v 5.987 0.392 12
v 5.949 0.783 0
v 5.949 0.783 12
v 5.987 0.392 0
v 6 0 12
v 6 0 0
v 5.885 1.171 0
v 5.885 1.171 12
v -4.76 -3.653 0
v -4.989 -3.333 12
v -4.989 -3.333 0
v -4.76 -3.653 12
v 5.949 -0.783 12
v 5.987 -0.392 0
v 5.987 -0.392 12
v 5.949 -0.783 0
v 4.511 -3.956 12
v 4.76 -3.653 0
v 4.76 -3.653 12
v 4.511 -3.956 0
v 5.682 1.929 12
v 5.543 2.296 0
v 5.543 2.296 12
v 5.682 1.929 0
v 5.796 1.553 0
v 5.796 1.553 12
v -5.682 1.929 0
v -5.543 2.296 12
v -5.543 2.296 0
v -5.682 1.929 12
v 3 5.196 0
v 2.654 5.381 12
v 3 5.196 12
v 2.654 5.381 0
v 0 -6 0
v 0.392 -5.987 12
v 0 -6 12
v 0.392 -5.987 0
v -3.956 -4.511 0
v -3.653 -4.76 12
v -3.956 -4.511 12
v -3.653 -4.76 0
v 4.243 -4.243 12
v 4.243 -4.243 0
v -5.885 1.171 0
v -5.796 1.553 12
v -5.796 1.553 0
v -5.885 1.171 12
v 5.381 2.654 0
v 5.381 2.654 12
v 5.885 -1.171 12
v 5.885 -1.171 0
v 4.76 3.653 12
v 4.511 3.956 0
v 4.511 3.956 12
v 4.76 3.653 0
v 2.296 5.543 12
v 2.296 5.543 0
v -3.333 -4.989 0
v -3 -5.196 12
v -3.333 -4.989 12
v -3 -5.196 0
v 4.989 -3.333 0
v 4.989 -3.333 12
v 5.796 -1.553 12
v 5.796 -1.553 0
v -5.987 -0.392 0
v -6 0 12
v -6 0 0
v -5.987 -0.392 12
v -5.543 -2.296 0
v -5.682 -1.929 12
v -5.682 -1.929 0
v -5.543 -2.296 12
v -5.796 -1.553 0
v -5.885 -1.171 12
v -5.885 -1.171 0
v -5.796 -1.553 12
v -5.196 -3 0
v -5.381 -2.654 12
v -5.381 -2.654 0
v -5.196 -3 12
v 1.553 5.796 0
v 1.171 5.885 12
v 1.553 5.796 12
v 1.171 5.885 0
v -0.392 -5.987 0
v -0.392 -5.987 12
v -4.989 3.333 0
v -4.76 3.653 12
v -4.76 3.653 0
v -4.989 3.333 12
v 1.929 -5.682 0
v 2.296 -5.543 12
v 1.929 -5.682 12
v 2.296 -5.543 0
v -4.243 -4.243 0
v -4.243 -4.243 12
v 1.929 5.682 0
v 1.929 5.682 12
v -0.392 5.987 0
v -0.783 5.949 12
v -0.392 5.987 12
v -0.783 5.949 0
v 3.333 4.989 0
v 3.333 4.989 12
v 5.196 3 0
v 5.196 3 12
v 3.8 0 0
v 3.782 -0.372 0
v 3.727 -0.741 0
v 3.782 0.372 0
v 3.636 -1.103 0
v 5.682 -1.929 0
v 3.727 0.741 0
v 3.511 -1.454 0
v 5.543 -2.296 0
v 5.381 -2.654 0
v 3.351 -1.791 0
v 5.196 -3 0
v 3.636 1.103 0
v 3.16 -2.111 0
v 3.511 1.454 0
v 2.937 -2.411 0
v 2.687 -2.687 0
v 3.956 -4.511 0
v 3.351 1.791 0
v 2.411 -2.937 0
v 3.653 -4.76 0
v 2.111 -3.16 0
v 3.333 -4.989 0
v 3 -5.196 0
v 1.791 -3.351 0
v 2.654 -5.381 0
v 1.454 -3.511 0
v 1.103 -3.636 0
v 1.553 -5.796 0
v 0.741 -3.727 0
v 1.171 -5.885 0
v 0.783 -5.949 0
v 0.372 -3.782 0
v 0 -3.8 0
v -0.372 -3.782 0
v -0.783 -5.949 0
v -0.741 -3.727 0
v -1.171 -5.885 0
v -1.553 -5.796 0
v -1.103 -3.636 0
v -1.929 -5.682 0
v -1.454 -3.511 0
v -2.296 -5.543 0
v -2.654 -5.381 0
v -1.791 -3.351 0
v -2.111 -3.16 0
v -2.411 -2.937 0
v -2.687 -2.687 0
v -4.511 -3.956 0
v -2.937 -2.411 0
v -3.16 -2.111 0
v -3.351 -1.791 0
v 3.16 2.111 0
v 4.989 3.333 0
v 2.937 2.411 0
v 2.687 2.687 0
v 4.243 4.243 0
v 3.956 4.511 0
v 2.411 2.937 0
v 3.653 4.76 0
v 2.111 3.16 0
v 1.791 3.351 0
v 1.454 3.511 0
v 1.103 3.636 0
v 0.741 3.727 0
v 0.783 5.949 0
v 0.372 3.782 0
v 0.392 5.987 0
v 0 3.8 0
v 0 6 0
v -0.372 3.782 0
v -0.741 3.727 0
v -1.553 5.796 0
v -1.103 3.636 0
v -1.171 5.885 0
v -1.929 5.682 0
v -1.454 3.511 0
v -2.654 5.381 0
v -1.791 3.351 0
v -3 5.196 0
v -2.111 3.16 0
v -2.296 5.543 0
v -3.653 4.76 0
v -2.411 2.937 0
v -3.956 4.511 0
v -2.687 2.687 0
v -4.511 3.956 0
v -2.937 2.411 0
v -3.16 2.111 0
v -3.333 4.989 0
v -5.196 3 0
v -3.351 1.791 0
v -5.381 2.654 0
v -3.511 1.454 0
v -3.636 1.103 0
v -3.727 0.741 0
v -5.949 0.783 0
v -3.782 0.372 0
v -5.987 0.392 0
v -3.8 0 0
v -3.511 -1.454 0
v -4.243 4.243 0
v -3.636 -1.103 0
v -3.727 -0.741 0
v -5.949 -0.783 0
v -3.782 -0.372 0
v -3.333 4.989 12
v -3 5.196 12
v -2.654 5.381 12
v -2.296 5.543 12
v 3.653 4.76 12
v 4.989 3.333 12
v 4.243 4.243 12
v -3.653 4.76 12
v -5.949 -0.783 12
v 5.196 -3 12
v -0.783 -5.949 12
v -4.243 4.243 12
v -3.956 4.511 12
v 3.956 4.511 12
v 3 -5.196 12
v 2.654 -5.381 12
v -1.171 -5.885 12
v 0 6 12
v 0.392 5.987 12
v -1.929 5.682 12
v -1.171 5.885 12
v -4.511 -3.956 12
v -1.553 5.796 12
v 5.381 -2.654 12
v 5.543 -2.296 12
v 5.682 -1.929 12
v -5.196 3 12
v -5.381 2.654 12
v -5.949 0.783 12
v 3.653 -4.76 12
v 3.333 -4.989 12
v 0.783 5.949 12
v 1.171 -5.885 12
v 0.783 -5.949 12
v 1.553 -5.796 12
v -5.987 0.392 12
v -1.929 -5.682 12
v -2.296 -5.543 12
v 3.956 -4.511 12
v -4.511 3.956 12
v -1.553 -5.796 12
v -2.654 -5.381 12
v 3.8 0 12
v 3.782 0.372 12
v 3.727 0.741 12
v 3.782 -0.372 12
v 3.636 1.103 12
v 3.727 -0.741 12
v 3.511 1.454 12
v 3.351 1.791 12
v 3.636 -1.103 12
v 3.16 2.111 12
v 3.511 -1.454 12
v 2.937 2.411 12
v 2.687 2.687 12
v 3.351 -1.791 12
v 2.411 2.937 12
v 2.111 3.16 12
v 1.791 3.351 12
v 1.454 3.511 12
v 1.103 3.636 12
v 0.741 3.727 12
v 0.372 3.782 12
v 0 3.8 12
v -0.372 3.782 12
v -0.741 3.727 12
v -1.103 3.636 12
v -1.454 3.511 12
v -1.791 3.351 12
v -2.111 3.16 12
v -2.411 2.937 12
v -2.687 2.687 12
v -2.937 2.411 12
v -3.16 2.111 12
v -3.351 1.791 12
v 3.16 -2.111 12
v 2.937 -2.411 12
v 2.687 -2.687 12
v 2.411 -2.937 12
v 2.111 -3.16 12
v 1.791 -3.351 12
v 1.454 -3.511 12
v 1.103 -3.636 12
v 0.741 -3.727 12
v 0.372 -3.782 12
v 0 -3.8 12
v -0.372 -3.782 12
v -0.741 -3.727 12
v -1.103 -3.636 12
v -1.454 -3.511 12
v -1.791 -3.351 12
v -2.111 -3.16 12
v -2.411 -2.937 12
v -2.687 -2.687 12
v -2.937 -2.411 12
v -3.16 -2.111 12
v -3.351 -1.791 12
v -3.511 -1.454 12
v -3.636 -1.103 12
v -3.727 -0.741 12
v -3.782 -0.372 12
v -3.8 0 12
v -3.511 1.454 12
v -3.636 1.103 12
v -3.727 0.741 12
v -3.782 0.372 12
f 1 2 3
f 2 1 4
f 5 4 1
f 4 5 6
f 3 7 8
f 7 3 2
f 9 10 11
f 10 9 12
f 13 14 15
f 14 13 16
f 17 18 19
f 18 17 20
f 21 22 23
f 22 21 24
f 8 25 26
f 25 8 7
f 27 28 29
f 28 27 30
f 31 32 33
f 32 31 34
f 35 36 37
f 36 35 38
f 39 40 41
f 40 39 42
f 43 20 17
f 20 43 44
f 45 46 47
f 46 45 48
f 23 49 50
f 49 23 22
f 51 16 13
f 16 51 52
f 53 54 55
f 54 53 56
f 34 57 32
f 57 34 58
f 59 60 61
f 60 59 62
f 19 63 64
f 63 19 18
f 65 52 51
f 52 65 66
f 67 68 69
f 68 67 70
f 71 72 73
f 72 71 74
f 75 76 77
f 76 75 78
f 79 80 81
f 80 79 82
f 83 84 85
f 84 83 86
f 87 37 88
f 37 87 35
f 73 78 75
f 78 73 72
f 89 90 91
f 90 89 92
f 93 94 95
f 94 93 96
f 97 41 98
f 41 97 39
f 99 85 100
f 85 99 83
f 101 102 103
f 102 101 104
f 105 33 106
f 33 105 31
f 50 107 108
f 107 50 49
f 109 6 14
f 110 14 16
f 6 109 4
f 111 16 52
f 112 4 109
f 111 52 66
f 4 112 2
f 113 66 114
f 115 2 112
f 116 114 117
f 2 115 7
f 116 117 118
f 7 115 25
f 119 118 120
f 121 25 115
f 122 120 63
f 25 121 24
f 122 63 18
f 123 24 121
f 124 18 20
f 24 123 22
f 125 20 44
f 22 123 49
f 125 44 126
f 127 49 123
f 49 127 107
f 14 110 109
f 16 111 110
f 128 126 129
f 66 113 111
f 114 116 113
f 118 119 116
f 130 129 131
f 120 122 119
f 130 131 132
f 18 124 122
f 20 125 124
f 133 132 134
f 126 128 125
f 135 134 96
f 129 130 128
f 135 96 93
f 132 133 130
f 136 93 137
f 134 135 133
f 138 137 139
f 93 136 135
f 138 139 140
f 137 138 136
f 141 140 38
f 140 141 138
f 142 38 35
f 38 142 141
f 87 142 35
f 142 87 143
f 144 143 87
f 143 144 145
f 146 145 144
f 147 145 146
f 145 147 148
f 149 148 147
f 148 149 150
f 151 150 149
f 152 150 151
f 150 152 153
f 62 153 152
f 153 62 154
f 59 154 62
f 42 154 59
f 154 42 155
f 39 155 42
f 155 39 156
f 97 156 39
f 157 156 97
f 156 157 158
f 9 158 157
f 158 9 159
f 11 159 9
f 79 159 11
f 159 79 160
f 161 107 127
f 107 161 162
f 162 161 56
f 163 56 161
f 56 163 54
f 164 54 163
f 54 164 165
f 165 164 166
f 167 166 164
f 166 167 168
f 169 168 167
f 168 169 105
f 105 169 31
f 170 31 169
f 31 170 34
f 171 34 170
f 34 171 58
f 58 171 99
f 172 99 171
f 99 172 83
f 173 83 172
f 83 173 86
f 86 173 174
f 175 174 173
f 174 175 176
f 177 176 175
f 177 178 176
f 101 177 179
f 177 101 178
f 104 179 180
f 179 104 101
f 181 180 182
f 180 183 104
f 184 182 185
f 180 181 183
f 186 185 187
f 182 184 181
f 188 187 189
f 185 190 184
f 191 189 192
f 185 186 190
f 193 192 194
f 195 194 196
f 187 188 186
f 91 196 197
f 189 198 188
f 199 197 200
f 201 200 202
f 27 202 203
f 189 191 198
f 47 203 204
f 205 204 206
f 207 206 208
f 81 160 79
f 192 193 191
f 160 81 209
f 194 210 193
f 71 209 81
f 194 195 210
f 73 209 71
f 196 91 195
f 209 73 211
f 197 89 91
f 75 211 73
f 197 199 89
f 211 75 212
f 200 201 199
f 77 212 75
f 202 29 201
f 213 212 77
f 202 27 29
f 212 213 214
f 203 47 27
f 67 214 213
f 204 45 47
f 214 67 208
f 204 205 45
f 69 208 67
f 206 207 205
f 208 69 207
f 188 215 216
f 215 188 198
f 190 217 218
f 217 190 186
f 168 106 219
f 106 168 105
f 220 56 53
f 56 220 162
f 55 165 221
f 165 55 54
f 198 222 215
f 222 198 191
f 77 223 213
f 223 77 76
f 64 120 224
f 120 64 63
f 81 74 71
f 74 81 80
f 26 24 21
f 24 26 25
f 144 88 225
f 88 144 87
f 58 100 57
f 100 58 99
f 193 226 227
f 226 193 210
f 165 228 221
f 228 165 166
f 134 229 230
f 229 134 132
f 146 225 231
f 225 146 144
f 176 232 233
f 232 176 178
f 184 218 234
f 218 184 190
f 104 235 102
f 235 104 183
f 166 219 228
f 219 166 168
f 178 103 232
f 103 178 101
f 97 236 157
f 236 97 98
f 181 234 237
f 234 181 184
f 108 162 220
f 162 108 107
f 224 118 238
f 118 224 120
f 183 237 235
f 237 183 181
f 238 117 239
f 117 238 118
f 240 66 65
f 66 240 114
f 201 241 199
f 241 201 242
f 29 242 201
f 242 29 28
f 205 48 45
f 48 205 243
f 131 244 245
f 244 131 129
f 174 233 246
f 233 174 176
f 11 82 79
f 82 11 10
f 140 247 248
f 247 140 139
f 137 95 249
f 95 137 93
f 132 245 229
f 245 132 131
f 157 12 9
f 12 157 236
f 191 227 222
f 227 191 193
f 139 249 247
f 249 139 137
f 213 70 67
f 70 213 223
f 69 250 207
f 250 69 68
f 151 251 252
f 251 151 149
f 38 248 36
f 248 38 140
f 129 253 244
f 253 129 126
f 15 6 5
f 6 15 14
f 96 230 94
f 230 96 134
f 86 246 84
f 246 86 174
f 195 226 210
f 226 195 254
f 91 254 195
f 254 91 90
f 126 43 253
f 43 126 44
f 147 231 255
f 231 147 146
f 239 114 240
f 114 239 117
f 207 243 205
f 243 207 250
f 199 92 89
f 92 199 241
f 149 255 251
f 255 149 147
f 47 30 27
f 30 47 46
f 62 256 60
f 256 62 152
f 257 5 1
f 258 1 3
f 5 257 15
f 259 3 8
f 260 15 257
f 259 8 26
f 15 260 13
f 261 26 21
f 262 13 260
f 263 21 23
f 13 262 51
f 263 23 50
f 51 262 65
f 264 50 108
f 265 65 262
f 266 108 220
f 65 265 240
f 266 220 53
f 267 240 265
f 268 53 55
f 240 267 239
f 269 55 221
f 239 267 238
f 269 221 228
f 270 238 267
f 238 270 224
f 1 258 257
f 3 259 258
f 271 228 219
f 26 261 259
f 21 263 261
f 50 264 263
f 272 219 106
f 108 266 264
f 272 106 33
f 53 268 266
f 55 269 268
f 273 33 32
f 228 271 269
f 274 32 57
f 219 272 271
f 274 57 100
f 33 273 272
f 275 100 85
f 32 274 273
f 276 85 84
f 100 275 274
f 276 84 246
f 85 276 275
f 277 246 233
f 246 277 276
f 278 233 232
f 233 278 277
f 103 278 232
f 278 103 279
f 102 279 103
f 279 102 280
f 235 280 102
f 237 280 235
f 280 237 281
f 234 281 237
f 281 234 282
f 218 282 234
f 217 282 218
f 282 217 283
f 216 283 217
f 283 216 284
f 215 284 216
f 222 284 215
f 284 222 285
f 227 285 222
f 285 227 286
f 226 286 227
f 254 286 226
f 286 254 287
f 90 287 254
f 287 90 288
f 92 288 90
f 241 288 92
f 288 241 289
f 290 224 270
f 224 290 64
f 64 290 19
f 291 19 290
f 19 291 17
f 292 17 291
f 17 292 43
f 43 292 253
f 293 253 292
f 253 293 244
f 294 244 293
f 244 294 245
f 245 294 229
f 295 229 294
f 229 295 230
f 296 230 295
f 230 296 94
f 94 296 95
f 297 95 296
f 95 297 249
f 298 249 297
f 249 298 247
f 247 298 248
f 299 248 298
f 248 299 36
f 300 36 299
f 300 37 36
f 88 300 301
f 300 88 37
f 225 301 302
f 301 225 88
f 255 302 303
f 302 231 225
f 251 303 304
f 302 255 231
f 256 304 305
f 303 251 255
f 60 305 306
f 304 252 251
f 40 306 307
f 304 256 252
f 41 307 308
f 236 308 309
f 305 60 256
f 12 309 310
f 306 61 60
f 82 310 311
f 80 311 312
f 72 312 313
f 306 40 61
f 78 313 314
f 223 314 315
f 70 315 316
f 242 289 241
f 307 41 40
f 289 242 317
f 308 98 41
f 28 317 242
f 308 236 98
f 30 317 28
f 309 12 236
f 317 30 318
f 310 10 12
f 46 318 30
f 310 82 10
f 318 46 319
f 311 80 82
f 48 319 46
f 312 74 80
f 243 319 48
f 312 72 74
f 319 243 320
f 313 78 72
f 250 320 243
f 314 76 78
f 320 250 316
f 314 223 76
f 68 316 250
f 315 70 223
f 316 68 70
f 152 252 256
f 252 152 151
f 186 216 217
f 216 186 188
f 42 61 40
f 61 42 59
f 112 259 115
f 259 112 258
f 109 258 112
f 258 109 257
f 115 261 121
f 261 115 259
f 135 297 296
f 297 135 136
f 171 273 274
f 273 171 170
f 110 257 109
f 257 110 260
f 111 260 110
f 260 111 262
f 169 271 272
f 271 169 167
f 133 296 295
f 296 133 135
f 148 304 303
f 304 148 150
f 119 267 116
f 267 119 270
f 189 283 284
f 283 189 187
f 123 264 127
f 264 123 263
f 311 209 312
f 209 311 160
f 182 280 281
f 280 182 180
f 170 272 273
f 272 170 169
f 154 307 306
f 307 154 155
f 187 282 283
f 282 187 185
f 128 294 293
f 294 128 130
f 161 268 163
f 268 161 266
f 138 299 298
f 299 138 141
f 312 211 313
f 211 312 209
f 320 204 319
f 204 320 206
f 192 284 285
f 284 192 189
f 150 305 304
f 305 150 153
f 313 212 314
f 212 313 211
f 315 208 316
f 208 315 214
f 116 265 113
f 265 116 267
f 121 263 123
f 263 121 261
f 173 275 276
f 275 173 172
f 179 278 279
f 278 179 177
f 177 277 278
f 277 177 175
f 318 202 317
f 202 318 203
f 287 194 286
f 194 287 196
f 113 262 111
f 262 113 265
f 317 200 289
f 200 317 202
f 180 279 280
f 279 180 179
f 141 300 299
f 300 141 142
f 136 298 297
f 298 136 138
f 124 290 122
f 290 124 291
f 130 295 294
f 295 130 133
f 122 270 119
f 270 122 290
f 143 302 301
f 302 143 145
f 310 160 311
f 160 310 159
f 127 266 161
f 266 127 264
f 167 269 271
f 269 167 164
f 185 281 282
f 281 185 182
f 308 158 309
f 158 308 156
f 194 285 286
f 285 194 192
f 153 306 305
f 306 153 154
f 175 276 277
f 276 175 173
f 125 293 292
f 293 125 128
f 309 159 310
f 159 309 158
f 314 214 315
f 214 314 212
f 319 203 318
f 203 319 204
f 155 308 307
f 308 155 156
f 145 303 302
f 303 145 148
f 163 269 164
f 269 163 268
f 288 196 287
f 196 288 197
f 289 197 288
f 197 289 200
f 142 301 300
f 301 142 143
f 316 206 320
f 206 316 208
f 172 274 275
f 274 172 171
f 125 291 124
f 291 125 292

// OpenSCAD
// Feed roller (print 2, TPU 95A): the white rollers on the Openprinter's feed
// shaft. Friction fit on the 8 mm shaft at roller_x; they press the paper onto
// the TPU pinch pads in the platen and pull it out the front.

include <common.scad>

difference() {
    cylinder(r = roller_r, h = roller_l, $fn = 96);
    translate([0, 0, -1]) cylinder(d = rod_d - 0.4, h = roller_l + 2);
}
